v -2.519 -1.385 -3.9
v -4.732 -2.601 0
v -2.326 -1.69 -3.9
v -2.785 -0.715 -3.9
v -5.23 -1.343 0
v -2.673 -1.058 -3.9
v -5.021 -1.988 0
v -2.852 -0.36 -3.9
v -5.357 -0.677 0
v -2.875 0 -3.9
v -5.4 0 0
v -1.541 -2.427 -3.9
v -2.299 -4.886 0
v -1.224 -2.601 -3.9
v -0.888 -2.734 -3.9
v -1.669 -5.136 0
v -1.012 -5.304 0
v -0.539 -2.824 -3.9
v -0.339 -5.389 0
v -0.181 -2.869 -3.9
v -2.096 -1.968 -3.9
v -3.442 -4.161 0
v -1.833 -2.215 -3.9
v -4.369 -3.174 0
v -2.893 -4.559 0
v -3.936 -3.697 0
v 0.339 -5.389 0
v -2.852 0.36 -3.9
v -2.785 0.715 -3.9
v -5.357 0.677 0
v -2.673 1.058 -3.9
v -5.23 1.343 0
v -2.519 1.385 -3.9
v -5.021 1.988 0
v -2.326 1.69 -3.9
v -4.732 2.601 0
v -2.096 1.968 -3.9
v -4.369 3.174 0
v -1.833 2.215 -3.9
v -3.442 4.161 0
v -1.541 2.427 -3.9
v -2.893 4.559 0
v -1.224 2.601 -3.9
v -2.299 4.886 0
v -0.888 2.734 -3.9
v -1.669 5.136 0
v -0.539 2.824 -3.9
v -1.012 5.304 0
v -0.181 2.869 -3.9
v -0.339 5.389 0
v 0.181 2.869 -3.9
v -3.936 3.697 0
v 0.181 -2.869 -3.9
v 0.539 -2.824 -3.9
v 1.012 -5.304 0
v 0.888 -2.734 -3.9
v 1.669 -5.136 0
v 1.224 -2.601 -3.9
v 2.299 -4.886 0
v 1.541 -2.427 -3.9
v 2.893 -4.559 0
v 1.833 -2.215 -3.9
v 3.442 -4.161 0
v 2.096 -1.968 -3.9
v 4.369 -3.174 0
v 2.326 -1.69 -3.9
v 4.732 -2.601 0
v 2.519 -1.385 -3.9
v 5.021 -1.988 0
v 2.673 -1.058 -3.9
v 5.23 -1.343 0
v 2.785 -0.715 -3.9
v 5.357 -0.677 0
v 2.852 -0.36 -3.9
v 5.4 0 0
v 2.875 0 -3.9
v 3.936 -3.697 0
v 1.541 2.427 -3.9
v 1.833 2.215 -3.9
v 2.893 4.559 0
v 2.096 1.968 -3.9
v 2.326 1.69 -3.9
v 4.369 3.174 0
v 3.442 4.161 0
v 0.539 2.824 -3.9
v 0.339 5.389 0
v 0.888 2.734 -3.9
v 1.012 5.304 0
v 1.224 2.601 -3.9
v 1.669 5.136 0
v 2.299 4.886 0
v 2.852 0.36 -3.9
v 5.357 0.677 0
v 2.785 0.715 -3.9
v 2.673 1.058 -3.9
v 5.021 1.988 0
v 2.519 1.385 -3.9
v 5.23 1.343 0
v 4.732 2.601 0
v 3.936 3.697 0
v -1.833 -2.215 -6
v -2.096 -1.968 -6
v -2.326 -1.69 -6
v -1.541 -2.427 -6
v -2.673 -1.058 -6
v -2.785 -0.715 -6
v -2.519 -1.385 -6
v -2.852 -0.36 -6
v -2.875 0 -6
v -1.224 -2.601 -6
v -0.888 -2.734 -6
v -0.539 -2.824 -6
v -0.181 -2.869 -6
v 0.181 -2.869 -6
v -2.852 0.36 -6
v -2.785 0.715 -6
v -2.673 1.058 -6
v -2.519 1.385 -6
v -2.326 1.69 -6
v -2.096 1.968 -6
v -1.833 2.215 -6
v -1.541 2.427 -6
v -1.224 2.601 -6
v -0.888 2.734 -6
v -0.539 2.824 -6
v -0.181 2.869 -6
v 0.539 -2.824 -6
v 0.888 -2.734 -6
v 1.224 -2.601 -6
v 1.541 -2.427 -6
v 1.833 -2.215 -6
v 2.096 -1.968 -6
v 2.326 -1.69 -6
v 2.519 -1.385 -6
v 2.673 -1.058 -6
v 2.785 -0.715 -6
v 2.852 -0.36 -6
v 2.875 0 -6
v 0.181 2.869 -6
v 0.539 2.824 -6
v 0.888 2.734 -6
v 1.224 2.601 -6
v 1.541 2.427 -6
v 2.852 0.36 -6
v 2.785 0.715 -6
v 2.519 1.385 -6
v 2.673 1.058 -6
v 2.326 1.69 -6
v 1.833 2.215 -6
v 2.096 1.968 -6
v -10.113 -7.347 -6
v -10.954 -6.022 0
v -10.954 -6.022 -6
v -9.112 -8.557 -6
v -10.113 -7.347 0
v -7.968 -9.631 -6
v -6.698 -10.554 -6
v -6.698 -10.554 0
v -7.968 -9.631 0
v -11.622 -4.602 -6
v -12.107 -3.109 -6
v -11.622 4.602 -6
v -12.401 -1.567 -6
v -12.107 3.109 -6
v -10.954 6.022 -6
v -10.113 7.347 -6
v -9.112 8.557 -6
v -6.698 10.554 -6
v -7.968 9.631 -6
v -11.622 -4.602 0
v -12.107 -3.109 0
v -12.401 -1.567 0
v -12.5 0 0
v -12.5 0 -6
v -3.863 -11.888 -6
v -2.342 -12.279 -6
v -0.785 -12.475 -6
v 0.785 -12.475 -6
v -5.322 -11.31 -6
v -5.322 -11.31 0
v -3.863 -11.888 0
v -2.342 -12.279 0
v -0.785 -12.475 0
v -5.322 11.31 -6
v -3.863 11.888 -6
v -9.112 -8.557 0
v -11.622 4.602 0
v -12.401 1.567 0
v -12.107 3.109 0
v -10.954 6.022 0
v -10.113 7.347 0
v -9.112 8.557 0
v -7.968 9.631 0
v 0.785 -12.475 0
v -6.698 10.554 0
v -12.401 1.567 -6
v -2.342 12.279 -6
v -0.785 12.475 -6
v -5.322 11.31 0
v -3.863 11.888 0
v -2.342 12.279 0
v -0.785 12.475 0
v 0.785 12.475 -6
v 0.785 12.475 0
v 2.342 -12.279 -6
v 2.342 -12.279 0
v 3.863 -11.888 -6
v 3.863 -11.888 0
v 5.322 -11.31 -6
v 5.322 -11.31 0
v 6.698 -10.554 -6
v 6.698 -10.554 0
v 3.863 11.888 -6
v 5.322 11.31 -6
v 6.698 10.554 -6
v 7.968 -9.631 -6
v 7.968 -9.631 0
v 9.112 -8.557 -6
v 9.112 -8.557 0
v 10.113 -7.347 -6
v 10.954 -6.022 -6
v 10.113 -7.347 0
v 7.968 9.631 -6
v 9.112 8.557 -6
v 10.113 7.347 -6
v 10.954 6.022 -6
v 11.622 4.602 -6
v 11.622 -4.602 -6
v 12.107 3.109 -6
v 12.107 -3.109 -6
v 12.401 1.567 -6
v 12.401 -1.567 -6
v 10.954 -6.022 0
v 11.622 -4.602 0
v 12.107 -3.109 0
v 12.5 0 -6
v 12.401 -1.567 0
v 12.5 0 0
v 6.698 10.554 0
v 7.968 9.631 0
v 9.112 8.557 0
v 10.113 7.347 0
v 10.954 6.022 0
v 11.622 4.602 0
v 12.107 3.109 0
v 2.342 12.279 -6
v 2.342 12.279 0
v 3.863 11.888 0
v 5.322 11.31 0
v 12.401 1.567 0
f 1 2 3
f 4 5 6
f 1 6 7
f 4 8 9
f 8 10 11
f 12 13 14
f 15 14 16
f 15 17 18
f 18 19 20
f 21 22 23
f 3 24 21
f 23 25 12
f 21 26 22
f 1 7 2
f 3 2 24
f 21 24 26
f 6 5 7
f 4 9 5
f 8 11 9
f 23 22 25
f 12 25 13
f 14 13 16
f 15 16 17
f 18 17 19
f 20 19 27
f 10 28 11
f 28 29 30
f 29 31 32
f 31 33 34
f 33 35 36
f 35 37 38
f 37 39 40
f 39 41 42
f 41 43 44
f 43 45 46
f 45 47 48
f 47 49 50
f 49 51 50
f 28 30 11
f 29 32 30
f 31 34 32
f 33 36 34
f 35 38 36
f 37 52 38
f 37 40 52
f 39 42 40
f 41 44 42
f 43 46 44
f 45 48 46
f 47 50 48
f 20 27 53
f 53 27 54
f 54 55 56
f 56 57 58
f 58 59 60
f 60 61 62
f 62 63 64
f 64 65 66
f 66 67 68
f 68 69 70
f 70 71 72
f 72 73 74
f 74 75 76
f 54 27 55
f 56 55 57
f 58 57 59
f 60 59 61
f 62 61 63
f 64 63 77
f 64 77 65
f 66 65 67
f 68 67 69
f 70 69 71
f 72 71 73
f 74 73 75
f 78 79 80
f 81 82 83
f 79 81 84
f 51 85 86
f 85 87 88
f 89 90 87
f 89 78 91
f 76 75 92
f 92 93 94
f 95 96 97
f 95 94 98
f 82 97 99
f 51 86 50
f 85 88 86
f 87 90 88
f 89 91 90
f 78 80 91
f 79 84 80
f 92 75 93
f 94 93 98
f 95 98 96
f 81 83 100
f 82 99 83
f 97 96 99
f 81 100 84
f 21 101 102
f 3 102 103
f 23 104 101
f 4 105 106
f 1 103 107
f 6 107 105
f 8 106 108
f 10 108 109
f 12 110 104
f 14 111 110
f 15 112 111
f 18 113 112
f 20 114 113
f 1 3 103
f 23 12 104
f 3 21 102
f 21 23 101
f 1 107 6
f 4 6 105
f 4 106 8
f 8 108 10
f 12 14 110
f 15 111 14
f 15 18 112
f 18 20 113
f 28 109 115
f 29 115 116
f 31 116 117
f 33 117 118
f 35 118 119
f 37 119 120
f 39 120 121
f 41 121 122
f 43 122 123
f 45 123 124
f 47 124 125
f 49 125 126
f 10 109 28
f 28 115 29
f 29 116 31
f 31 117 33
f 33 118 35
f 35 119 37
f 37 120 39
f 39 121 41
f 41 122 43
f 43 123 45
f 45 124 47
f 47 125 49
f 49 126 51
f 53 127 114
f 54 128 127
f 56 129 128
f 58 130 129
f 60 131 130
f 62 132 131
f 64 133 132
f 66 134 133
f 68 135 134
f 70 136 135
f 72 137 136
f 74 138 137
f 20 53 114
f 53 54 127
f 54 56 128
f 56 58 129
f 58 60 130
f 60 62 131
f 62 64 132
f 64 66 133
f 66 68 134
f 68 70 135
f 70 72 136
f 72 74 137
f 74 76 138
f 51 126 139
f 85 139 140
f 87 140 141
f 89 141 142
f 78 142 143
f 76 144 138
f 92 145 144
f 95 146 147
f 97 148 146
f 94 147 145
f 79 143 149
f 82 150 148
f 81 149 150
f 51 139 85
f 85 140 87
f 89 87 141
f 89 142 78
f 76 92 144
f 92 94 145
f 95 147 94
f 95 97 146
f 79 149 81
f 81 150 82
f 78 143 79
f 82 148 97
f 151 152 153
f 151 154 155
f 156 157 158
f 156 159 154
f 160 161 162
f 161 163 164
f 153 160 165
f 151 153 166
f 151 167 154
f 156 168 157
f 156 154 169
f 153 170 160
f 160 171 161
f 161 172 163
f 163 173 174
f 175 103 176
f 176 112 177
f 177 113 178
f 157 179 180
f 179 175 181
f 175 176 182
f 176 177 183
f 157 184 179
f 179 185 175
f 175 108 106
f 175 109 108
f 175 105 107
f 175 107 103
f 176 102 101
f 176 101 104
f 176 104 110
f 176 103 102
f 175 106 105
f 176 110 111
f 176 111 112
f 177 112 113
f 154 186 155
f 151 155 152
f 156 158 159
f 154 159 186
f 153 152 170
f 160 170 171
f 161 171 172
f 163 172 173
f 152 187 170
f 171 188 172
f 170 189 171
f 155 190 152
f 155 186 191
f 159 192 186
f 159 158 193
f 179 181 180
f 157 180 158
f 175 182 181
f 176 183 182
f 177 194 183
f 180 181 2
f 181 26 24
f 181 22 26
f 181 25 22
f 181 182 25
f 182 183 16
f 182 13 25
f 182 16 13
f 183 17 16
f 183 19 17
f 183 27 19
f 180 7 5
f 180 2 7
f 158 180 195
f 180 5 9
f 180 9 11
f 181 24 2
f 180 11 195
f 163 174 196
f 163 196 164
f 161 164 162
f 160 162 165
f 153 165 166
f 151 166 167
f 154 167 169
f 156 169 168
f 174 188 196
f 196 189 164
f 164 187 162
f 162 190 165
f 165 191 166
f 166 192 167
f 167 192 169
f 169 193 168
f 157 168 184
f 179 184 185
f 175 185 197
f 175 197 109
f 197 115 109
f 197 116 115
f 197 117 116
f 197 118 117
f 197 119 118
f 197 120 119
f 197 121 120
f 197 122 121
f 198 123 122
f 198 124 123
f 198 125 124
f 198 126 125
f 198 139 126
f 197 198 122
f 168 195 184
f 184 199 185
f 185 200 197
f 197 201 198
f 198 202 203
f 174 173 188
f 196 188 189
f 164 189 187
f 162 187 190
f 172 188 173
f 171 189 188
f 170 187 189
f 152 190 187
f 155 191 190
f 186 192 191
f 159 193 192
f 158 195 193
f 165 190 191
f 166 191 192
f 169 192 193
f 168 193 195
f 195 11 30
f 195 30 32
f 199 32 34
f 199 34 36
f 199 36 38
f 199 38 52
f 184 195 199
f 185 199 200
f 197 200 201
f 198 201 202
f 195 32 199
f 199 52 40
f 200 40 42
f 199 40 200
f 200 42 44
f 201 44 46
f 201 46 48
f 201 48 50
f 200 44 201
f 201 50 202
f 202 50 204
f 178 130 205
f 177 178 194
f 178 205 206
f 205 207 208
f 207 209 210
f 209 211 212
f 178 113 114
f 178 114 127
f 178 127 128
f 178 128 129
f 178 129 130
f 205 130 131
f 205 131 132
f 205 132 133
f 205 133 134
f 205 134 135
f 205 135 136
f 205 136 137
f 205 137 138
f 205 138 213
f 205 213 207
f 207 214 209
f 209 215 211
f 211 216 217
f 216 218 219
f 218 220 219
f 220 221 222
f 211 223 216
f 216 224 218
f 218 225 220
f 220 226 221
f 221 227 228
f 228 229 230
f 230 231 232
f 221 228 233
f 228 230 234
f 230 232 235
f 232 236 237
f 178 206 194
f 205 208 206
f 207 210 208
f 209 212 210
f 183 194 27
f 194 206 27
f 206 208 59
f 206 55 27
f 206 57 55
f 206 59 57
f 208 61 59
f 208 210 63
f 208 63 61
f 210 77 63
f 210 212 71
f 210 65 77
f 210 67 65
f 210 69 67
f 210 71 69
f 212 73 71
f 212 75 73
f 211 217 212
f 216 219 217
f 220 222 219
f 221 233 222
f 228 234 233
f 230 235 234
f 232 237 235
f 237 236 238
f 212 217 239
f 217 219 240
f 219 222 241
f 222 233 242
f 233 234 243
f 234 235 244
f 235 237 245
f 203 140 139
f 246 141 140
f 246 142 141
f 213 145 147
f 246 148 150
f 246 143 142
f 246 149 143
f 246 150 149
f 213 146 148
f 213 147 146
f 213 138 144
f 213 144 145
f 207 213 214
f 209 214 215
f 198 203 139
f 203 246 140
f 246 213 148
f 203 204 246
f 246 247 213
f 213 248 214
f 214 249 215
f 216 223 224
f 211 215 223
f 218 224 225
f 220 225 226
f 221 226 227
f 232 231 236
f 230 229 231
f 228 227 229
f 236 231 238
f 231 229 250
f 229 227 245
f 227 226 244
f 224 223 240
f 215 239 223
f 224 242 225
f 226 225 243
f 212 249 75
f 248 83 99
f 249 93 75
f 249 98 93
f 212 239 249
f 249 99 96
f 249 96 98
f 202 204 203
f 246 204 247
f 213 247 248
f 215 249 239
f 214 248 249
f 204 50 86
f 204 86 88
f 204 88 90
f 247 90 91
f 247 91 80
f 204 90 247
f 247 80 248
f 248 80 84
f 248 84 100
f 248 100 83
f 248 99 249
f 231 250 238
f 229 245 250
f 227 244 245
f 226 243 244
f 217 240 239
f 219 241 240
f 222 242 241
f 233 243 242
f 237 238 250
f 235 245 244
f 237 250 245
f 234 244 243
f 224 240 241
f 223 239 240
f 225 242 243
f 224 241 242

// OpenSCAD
$fn = 50;


difference() {
	union() {
		translate(v = [0, 0, -6.0000000000]) {
			cylinder(h = 6, r = 12.5000000000);
		}
	}
	union() {
		translate(v = [0, 0, 0]) {
			rotate(a = [0, 0, 0]) {
				difference() {
					union() {
						translate(v = [0, 0, -9.0000000000]) {
							cylinder(h = 9, r = 2.6000000000);
						}
						translate(v = [0, 0, -3.9000000000]) {
							cylinder(h = 3.9000000000, r1 = 2.8750000000, r2 = 5.4000000000);
						}
						translate(v = [0, 0, -9.0000000000]) {
							cylinder(h = 9, r = 2.8750000000);
						}
						translate(v = [0, 0, -9.0000000000]) {
							cylinder(h = 9, r = 2.6000000000);
						}
					}
					union();
				}
			}
		}
	}
}
